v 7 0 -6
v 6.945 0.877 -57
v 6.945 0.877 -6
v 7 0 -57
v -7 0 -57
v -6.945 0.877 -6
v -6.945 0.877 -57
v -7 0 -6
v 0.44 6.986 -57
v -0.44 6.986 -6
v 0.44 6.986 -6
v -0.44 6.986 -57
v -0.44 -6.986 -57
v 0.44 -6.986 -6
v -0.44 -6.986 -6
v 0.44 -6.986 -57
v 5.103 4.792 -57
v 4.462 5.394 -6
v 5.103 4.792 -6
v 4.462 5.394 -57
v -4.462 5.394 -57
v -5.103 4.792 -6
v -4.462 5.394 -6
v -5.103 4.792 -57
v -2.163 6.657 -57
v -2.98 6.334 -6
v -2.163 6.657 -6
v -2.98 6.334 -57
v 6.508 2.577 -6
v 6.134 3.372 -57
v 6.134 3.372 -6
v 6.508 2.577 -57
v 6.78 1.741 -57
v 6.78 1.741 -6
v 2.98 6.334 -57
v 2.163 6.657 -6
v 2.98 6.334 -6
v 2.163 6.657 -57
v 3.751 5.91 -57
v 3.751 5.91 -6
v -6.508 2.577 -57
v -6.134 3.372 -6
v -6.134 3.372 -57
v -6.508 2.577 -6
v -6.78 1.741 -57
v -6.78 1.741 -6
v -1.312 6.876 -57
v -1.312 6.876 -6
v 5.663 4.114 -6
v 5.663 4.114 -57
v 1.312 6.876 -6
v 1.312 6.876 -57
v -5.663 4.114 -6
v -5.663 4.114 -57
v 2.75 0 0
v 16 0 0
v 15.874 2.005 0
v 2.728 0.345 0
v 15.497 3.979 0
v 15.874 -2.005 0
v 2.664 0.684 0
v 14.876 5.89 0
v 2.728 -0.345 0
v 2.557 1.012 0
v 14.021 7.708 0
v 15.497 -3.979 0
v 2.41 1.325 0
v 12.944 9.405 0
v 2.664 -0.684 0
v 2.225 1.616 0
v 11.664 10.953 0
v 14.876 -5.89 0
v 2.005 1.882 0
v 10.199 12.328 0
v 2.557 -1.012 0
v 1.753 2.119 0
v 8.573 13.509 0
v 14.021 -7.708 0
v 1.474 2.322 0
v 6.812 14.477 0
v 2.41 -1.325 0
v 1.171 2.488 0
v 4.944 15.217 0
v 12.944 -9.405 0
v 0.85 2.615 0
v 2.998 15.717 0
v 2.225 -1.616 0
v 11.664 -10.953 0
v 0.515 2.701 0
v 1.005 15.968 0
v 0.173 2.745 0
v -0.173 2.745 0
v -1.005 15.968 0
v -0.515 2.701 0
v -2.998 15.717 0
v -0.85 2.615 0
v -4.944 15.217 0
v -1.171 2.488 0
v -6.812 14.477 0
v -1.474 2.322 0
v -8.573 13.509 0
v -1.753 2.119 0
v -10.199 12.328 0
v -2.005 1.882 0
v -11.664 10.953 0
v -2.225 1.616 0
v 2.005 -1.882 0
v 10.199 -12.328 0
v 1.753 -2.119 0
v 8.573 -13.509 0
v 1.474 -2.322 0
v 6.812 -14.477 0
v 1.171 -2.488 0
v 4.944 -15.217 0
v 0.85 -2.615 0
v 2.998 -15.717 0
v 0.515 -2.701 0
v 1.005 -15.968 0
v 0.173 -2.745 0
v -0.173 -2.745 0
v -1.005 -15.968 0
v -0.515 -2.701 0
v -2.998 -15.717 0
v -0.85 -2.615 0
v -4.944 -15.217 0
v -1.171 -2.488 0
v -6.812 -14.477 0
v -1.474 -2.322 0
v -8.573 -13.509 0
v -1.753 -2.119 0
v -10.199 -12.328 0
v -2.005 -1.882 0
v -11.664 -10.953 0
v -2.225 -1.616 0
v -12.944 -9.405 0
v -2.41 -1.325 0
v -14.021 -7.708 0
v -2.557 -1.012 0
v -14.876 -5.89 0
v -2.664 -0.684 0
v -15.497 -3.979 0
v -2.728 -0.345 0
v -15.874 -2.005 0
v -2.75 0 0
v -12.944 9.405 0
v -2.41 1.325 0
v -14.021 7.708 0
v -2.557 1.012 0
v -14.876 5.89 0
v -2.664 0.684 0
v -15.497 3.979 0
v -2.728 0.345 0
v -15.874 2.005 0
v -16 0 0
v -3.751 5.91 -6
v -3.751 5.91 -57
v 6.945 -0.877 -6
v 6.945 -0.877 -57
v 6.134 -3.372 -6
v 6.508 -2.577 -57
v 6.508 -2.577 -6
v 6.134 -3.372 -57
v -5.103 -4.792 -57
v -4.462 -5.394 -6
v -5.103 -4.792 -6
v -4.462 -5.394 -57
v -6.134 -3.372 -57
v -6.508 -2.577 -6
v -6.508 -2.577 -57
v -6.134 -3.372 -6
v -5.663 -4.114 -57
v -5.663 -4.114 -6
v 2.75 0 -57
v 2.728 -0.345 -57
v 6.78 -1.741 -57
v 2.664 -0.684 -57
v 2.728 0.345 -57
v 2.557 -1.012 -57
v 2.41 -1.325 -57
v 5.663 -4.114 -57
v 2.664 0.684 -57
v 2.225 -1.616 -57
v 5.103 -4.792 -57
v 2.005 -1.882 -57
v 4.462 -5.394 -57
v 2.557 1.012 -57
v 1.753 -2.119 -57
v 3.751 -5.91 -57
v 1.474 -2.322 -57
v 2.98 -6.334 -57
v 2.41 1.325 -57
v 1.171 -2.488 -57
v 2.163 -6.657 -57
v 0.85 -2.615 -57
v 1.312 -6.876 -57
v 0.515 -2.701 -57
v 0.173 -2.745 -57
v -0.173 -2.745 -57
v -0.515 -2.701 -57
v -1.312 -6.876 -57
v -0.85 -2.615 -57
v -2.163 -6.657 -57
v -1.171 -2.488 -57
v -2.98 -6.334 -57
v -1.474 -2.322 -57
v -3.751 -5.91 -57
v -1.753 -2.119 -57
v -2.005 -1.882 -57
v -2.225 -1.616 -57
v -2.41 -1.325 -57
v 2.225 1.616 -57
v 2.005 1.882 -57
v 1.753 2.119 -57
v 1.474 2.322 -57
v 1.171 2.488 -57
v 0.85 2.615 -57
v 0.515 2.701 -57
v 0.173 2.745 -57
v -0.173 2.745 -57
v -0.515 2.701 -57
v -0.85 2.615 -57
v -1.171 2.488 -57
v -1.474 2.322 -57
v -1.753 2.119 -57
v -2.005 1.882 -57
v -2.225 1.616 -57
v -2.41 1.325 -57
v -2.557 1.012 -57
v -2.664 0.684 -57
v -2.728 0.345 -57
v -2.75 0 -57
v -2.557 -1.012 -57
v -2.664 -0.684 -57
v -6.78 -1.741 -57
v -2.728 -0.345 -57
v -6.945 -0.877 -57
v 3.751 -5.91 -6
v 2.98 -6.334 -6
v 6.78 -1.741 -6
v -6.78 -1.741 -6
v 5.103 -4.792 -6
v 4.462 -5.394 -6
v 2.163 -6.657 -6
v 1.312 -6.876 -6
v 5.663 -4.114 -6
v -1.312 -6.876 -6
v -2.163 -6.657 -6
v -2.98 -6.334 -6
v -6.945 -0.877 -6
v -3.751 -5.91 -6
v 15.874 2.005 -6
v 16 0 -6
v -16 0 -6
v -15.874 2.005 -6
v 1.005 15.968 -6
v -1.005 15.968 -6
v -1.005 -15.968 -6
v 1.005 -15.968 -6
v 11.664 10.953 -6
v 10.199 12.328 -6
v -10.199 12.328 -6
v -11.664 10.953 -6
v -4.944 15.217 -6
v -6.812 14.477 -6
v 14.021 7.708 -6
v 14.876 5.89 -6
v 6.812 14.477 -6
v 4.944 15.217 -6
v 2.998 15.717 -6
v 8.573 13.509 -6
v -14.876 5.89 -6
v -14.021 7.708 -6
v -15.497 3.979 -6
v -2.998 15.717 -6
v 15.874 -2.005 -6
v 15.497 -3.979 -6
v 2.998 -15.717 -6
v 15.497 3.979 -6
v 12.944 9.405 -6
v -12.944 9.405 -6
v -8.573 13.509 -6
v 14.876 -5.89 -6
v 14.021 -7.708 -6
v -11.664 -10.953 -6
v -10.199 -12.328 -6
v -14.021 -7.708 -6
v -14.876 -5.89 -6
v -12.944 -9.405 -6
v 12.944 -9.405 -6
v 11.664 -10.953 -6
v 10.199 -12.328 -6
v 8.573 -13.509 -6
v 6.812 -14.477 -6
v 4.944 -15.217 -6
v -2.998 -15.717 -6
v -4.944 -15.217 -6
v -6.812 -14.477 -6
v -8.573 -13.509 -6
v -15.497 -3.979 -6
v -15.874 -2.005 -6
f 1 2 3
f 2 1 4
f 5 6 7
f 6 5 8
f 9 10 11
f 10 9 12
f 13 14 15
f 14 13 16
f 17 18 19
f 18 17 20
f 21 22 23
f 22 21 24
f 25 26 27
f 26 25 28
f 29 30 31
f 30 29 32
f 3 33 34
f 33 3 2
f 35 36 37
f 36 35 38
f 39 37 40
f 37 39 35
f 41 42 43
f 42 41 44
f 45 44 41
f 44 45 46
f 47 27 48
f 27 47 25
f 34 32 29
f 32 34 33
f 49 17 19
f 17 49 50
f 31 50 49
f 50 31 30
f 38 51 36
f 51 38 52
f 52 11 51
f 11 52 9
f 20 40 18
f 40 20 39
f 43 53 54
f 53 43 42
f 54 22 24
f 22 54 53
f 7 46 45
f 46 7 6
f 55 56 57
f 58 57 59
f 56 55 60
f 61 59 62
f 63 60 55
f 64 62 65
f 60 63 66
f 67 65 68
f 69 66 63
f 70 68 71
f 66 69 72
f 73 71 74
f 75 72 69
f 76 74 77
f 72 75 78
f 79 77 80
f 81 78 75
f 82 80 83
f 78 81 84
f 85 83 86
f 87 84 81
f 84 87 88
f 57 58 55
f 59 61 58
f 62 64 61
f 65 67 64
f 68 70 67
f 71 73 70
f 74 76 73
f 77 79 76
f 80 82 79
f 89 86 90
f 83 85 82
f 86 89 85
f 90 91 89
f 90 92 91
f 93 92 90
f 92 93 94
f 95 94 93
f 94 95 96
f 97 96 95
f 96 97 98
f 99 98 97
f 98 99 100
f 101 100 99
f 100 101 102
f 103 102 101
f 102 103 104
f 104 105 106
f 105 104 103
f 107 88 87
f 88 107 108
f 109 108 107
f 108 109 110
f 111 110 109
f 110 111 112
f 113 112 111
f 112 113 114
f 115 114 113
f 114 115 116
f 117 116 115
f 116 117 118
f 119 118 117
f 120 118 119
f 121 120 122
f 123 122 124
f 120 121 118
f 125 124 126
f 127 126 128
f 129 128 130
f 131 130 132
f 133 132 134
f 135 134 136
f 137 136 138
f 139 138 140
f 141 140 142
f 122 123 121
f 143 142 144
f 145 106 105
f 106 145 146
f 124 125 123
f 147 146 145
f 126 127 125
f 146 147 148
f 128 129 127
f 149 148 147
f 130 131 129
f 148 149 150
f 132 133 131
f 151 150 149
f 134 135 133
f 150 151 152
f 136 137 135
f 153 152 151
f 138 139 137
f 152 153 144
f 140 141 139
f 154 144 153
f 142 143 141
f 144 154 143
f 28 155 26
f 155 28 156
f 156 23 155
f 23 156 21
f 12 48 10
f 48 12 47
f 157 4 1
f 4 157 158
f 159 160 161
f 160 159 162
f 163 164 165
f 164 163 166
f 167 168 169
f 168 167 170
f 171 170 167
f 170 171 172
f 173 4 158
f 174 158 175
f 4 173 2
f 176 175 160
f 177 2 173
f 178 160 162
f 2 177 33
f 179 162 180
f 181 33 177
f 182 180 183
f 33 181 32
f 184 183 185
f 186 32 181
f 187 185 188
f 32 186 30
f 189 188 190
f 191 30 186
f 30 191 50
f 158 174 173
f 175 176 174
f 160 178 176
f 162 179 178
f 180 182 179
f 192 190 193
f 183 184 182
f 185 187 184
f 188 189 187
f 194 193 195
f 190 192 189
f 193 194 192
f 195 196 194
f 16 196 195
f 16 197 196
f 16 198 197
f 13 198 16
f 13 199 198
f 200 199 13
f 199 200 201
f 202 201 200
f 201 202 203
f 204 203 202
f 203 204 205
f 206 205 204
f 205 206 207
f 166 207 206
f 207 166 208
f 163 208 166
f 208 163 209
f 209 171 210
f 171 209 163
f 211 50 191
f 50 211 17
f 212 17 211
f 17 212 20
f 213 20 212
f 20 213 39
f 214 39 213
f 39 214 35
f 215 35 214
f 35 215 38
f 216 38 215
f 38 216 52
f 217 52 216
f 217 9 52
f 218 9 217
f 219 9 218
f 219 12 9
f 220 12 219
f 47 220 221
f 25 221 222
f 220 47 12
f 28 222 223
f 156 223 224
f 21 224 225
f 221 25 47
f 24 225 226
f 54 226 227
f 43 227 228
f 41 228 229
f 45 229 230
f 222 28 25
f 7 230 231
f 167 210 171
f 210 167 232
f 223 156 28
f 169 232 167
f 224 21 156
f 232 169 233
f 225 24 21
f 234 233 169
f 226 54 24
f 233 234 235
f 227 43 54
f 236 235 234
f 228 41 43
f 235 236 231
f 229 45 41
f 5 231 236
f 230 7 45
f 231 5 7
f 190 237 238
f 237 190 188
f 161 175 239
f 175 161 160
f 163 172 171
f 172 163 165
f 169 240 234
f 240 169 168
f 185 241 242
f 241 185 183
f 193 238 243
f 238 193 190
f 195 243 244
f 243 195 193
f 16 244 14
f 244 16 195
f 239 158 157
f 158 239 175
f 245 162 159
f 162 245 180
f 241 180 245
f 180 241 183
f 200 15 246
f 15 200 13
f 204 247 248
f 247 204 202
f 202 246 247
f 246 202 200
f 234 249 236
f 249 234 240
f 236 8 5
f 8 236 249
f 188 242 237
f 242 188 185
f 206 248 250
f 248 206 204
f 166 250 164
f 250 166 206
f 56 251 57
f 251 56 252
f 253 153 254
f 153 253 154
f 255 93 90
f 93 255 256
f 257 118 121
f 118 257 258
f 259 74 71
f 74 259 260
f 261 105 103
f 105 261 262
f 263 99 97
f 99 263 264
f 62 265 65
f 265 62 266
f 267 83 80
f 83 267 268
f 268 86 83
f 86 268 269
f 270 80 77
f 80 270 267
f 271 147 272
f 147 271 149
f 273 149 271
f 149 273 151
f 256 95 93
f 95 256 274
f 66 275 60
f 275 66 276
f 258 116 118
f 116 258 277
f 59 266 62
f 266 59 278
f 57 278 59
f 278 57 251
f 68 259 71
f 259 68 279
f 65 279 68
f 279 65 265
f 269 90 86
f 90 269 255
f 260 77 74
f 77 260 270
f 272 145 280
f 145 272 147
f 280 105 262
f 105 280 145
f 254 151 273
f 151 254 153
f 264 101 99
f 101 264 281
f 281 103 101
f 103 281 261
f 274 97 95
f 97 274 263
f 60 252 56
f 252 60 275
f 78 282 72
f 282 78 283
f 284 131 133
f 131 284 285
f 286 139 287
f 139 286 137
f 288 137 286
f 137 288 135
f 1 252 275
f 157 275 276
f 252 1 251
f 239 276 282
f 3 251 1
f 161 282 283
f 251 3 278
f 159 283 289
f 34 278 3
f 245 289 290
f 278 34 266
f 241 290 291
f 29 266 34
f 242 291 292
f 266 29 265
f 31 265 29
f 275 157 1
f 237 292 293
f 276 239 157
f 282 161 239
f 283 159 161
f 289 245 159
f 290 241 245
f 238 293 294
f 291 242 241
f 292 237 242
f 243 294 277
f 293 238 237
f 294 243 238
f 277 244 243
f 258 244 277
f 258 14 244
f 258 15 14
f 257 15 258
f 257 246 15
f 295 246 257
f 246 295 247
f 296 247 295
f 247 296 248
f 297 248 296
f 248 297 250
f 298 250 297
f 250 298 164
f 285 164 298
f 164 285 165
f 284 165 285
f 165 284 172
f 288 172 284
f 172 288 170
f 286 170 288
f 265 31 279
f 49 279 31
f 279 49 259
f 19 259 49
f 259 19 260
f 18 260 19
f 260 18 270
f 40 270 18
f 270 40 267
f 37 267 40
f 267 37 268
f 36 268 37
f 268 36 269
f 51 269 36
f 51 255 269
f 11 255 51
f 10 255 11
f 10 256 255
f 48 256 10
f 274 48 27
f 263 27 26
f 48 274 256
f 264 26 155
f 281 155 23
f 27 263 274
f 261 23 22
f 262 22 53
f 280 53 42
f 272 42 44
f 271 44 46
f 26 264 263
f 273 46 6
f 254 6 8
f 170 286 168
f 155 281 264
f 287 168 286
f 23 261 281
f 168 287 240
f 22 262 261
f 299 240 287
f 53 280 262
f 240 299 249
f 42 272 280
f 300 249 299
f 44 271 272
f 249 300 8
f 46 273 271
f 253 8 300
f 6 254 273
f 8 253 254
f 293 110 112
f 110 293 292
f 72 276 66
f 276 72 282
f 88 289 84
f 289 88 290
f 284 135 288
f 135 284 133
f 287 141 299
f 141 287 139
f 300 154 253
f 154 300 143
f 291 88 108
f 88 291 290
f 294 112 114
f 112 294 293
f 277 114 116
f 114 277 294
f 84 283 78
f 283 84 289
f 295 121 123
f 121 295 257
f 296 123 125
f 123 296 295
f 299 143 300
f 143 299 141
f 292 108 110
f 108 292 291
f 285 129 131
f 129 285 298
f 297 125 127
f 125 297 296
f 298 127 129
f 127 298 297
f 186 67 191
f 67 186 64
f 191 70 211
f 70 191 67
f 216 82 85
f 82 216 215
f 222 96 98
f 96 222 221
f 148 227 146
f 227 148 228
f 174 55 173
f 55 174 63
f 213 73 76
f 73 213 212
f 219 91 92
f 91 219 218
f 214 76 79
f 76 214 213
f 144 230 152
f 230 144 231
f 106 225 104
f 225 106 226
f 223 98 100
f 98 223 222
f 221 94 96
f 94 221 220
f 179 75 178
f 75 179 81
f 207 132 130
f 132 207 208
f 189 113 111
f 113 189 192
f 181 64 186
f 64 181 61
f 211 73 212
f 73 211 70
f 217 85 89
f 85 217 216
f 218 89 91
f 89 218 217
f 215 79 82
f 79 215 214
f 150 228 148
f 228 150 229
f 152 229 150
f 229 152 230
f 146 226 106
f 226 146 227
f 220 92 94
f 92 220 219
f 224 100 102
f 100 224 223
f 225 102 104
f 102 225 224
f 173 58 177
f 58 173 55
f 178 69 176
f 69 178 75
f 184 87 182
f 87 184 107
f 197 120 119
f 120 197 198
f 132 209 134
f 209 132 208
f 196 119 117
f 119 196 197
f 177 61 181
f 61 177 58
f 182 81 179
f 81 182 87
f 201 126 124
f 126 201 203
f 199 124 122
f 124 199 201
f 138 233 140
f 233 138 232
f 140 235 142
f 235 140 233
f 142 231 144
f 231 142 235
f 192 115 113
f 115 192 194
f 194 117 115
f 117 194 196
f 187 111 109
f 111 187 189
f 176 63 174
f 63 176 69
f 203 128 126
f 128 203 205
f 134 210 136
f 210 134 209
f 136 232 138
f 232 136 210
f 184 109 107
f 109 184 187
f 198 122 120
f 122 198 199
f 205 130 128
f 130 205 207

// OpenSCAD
$fn = 50;


difference() {
	union() {
		translate(v = [0, 0, -57.0000000000]) {
			cylinder(h = 57, r = 7.0000000000);
		}
		translate(v = [0, 0, -6.0000000000]) {
			cylinder(h = 6, r = 16.0000000000);
		}
	}
	union() {
		#translate(v = [0, 0, -57]) {
			cylinder(h = 57, r = 2.7500000000);
		}
	}
}
